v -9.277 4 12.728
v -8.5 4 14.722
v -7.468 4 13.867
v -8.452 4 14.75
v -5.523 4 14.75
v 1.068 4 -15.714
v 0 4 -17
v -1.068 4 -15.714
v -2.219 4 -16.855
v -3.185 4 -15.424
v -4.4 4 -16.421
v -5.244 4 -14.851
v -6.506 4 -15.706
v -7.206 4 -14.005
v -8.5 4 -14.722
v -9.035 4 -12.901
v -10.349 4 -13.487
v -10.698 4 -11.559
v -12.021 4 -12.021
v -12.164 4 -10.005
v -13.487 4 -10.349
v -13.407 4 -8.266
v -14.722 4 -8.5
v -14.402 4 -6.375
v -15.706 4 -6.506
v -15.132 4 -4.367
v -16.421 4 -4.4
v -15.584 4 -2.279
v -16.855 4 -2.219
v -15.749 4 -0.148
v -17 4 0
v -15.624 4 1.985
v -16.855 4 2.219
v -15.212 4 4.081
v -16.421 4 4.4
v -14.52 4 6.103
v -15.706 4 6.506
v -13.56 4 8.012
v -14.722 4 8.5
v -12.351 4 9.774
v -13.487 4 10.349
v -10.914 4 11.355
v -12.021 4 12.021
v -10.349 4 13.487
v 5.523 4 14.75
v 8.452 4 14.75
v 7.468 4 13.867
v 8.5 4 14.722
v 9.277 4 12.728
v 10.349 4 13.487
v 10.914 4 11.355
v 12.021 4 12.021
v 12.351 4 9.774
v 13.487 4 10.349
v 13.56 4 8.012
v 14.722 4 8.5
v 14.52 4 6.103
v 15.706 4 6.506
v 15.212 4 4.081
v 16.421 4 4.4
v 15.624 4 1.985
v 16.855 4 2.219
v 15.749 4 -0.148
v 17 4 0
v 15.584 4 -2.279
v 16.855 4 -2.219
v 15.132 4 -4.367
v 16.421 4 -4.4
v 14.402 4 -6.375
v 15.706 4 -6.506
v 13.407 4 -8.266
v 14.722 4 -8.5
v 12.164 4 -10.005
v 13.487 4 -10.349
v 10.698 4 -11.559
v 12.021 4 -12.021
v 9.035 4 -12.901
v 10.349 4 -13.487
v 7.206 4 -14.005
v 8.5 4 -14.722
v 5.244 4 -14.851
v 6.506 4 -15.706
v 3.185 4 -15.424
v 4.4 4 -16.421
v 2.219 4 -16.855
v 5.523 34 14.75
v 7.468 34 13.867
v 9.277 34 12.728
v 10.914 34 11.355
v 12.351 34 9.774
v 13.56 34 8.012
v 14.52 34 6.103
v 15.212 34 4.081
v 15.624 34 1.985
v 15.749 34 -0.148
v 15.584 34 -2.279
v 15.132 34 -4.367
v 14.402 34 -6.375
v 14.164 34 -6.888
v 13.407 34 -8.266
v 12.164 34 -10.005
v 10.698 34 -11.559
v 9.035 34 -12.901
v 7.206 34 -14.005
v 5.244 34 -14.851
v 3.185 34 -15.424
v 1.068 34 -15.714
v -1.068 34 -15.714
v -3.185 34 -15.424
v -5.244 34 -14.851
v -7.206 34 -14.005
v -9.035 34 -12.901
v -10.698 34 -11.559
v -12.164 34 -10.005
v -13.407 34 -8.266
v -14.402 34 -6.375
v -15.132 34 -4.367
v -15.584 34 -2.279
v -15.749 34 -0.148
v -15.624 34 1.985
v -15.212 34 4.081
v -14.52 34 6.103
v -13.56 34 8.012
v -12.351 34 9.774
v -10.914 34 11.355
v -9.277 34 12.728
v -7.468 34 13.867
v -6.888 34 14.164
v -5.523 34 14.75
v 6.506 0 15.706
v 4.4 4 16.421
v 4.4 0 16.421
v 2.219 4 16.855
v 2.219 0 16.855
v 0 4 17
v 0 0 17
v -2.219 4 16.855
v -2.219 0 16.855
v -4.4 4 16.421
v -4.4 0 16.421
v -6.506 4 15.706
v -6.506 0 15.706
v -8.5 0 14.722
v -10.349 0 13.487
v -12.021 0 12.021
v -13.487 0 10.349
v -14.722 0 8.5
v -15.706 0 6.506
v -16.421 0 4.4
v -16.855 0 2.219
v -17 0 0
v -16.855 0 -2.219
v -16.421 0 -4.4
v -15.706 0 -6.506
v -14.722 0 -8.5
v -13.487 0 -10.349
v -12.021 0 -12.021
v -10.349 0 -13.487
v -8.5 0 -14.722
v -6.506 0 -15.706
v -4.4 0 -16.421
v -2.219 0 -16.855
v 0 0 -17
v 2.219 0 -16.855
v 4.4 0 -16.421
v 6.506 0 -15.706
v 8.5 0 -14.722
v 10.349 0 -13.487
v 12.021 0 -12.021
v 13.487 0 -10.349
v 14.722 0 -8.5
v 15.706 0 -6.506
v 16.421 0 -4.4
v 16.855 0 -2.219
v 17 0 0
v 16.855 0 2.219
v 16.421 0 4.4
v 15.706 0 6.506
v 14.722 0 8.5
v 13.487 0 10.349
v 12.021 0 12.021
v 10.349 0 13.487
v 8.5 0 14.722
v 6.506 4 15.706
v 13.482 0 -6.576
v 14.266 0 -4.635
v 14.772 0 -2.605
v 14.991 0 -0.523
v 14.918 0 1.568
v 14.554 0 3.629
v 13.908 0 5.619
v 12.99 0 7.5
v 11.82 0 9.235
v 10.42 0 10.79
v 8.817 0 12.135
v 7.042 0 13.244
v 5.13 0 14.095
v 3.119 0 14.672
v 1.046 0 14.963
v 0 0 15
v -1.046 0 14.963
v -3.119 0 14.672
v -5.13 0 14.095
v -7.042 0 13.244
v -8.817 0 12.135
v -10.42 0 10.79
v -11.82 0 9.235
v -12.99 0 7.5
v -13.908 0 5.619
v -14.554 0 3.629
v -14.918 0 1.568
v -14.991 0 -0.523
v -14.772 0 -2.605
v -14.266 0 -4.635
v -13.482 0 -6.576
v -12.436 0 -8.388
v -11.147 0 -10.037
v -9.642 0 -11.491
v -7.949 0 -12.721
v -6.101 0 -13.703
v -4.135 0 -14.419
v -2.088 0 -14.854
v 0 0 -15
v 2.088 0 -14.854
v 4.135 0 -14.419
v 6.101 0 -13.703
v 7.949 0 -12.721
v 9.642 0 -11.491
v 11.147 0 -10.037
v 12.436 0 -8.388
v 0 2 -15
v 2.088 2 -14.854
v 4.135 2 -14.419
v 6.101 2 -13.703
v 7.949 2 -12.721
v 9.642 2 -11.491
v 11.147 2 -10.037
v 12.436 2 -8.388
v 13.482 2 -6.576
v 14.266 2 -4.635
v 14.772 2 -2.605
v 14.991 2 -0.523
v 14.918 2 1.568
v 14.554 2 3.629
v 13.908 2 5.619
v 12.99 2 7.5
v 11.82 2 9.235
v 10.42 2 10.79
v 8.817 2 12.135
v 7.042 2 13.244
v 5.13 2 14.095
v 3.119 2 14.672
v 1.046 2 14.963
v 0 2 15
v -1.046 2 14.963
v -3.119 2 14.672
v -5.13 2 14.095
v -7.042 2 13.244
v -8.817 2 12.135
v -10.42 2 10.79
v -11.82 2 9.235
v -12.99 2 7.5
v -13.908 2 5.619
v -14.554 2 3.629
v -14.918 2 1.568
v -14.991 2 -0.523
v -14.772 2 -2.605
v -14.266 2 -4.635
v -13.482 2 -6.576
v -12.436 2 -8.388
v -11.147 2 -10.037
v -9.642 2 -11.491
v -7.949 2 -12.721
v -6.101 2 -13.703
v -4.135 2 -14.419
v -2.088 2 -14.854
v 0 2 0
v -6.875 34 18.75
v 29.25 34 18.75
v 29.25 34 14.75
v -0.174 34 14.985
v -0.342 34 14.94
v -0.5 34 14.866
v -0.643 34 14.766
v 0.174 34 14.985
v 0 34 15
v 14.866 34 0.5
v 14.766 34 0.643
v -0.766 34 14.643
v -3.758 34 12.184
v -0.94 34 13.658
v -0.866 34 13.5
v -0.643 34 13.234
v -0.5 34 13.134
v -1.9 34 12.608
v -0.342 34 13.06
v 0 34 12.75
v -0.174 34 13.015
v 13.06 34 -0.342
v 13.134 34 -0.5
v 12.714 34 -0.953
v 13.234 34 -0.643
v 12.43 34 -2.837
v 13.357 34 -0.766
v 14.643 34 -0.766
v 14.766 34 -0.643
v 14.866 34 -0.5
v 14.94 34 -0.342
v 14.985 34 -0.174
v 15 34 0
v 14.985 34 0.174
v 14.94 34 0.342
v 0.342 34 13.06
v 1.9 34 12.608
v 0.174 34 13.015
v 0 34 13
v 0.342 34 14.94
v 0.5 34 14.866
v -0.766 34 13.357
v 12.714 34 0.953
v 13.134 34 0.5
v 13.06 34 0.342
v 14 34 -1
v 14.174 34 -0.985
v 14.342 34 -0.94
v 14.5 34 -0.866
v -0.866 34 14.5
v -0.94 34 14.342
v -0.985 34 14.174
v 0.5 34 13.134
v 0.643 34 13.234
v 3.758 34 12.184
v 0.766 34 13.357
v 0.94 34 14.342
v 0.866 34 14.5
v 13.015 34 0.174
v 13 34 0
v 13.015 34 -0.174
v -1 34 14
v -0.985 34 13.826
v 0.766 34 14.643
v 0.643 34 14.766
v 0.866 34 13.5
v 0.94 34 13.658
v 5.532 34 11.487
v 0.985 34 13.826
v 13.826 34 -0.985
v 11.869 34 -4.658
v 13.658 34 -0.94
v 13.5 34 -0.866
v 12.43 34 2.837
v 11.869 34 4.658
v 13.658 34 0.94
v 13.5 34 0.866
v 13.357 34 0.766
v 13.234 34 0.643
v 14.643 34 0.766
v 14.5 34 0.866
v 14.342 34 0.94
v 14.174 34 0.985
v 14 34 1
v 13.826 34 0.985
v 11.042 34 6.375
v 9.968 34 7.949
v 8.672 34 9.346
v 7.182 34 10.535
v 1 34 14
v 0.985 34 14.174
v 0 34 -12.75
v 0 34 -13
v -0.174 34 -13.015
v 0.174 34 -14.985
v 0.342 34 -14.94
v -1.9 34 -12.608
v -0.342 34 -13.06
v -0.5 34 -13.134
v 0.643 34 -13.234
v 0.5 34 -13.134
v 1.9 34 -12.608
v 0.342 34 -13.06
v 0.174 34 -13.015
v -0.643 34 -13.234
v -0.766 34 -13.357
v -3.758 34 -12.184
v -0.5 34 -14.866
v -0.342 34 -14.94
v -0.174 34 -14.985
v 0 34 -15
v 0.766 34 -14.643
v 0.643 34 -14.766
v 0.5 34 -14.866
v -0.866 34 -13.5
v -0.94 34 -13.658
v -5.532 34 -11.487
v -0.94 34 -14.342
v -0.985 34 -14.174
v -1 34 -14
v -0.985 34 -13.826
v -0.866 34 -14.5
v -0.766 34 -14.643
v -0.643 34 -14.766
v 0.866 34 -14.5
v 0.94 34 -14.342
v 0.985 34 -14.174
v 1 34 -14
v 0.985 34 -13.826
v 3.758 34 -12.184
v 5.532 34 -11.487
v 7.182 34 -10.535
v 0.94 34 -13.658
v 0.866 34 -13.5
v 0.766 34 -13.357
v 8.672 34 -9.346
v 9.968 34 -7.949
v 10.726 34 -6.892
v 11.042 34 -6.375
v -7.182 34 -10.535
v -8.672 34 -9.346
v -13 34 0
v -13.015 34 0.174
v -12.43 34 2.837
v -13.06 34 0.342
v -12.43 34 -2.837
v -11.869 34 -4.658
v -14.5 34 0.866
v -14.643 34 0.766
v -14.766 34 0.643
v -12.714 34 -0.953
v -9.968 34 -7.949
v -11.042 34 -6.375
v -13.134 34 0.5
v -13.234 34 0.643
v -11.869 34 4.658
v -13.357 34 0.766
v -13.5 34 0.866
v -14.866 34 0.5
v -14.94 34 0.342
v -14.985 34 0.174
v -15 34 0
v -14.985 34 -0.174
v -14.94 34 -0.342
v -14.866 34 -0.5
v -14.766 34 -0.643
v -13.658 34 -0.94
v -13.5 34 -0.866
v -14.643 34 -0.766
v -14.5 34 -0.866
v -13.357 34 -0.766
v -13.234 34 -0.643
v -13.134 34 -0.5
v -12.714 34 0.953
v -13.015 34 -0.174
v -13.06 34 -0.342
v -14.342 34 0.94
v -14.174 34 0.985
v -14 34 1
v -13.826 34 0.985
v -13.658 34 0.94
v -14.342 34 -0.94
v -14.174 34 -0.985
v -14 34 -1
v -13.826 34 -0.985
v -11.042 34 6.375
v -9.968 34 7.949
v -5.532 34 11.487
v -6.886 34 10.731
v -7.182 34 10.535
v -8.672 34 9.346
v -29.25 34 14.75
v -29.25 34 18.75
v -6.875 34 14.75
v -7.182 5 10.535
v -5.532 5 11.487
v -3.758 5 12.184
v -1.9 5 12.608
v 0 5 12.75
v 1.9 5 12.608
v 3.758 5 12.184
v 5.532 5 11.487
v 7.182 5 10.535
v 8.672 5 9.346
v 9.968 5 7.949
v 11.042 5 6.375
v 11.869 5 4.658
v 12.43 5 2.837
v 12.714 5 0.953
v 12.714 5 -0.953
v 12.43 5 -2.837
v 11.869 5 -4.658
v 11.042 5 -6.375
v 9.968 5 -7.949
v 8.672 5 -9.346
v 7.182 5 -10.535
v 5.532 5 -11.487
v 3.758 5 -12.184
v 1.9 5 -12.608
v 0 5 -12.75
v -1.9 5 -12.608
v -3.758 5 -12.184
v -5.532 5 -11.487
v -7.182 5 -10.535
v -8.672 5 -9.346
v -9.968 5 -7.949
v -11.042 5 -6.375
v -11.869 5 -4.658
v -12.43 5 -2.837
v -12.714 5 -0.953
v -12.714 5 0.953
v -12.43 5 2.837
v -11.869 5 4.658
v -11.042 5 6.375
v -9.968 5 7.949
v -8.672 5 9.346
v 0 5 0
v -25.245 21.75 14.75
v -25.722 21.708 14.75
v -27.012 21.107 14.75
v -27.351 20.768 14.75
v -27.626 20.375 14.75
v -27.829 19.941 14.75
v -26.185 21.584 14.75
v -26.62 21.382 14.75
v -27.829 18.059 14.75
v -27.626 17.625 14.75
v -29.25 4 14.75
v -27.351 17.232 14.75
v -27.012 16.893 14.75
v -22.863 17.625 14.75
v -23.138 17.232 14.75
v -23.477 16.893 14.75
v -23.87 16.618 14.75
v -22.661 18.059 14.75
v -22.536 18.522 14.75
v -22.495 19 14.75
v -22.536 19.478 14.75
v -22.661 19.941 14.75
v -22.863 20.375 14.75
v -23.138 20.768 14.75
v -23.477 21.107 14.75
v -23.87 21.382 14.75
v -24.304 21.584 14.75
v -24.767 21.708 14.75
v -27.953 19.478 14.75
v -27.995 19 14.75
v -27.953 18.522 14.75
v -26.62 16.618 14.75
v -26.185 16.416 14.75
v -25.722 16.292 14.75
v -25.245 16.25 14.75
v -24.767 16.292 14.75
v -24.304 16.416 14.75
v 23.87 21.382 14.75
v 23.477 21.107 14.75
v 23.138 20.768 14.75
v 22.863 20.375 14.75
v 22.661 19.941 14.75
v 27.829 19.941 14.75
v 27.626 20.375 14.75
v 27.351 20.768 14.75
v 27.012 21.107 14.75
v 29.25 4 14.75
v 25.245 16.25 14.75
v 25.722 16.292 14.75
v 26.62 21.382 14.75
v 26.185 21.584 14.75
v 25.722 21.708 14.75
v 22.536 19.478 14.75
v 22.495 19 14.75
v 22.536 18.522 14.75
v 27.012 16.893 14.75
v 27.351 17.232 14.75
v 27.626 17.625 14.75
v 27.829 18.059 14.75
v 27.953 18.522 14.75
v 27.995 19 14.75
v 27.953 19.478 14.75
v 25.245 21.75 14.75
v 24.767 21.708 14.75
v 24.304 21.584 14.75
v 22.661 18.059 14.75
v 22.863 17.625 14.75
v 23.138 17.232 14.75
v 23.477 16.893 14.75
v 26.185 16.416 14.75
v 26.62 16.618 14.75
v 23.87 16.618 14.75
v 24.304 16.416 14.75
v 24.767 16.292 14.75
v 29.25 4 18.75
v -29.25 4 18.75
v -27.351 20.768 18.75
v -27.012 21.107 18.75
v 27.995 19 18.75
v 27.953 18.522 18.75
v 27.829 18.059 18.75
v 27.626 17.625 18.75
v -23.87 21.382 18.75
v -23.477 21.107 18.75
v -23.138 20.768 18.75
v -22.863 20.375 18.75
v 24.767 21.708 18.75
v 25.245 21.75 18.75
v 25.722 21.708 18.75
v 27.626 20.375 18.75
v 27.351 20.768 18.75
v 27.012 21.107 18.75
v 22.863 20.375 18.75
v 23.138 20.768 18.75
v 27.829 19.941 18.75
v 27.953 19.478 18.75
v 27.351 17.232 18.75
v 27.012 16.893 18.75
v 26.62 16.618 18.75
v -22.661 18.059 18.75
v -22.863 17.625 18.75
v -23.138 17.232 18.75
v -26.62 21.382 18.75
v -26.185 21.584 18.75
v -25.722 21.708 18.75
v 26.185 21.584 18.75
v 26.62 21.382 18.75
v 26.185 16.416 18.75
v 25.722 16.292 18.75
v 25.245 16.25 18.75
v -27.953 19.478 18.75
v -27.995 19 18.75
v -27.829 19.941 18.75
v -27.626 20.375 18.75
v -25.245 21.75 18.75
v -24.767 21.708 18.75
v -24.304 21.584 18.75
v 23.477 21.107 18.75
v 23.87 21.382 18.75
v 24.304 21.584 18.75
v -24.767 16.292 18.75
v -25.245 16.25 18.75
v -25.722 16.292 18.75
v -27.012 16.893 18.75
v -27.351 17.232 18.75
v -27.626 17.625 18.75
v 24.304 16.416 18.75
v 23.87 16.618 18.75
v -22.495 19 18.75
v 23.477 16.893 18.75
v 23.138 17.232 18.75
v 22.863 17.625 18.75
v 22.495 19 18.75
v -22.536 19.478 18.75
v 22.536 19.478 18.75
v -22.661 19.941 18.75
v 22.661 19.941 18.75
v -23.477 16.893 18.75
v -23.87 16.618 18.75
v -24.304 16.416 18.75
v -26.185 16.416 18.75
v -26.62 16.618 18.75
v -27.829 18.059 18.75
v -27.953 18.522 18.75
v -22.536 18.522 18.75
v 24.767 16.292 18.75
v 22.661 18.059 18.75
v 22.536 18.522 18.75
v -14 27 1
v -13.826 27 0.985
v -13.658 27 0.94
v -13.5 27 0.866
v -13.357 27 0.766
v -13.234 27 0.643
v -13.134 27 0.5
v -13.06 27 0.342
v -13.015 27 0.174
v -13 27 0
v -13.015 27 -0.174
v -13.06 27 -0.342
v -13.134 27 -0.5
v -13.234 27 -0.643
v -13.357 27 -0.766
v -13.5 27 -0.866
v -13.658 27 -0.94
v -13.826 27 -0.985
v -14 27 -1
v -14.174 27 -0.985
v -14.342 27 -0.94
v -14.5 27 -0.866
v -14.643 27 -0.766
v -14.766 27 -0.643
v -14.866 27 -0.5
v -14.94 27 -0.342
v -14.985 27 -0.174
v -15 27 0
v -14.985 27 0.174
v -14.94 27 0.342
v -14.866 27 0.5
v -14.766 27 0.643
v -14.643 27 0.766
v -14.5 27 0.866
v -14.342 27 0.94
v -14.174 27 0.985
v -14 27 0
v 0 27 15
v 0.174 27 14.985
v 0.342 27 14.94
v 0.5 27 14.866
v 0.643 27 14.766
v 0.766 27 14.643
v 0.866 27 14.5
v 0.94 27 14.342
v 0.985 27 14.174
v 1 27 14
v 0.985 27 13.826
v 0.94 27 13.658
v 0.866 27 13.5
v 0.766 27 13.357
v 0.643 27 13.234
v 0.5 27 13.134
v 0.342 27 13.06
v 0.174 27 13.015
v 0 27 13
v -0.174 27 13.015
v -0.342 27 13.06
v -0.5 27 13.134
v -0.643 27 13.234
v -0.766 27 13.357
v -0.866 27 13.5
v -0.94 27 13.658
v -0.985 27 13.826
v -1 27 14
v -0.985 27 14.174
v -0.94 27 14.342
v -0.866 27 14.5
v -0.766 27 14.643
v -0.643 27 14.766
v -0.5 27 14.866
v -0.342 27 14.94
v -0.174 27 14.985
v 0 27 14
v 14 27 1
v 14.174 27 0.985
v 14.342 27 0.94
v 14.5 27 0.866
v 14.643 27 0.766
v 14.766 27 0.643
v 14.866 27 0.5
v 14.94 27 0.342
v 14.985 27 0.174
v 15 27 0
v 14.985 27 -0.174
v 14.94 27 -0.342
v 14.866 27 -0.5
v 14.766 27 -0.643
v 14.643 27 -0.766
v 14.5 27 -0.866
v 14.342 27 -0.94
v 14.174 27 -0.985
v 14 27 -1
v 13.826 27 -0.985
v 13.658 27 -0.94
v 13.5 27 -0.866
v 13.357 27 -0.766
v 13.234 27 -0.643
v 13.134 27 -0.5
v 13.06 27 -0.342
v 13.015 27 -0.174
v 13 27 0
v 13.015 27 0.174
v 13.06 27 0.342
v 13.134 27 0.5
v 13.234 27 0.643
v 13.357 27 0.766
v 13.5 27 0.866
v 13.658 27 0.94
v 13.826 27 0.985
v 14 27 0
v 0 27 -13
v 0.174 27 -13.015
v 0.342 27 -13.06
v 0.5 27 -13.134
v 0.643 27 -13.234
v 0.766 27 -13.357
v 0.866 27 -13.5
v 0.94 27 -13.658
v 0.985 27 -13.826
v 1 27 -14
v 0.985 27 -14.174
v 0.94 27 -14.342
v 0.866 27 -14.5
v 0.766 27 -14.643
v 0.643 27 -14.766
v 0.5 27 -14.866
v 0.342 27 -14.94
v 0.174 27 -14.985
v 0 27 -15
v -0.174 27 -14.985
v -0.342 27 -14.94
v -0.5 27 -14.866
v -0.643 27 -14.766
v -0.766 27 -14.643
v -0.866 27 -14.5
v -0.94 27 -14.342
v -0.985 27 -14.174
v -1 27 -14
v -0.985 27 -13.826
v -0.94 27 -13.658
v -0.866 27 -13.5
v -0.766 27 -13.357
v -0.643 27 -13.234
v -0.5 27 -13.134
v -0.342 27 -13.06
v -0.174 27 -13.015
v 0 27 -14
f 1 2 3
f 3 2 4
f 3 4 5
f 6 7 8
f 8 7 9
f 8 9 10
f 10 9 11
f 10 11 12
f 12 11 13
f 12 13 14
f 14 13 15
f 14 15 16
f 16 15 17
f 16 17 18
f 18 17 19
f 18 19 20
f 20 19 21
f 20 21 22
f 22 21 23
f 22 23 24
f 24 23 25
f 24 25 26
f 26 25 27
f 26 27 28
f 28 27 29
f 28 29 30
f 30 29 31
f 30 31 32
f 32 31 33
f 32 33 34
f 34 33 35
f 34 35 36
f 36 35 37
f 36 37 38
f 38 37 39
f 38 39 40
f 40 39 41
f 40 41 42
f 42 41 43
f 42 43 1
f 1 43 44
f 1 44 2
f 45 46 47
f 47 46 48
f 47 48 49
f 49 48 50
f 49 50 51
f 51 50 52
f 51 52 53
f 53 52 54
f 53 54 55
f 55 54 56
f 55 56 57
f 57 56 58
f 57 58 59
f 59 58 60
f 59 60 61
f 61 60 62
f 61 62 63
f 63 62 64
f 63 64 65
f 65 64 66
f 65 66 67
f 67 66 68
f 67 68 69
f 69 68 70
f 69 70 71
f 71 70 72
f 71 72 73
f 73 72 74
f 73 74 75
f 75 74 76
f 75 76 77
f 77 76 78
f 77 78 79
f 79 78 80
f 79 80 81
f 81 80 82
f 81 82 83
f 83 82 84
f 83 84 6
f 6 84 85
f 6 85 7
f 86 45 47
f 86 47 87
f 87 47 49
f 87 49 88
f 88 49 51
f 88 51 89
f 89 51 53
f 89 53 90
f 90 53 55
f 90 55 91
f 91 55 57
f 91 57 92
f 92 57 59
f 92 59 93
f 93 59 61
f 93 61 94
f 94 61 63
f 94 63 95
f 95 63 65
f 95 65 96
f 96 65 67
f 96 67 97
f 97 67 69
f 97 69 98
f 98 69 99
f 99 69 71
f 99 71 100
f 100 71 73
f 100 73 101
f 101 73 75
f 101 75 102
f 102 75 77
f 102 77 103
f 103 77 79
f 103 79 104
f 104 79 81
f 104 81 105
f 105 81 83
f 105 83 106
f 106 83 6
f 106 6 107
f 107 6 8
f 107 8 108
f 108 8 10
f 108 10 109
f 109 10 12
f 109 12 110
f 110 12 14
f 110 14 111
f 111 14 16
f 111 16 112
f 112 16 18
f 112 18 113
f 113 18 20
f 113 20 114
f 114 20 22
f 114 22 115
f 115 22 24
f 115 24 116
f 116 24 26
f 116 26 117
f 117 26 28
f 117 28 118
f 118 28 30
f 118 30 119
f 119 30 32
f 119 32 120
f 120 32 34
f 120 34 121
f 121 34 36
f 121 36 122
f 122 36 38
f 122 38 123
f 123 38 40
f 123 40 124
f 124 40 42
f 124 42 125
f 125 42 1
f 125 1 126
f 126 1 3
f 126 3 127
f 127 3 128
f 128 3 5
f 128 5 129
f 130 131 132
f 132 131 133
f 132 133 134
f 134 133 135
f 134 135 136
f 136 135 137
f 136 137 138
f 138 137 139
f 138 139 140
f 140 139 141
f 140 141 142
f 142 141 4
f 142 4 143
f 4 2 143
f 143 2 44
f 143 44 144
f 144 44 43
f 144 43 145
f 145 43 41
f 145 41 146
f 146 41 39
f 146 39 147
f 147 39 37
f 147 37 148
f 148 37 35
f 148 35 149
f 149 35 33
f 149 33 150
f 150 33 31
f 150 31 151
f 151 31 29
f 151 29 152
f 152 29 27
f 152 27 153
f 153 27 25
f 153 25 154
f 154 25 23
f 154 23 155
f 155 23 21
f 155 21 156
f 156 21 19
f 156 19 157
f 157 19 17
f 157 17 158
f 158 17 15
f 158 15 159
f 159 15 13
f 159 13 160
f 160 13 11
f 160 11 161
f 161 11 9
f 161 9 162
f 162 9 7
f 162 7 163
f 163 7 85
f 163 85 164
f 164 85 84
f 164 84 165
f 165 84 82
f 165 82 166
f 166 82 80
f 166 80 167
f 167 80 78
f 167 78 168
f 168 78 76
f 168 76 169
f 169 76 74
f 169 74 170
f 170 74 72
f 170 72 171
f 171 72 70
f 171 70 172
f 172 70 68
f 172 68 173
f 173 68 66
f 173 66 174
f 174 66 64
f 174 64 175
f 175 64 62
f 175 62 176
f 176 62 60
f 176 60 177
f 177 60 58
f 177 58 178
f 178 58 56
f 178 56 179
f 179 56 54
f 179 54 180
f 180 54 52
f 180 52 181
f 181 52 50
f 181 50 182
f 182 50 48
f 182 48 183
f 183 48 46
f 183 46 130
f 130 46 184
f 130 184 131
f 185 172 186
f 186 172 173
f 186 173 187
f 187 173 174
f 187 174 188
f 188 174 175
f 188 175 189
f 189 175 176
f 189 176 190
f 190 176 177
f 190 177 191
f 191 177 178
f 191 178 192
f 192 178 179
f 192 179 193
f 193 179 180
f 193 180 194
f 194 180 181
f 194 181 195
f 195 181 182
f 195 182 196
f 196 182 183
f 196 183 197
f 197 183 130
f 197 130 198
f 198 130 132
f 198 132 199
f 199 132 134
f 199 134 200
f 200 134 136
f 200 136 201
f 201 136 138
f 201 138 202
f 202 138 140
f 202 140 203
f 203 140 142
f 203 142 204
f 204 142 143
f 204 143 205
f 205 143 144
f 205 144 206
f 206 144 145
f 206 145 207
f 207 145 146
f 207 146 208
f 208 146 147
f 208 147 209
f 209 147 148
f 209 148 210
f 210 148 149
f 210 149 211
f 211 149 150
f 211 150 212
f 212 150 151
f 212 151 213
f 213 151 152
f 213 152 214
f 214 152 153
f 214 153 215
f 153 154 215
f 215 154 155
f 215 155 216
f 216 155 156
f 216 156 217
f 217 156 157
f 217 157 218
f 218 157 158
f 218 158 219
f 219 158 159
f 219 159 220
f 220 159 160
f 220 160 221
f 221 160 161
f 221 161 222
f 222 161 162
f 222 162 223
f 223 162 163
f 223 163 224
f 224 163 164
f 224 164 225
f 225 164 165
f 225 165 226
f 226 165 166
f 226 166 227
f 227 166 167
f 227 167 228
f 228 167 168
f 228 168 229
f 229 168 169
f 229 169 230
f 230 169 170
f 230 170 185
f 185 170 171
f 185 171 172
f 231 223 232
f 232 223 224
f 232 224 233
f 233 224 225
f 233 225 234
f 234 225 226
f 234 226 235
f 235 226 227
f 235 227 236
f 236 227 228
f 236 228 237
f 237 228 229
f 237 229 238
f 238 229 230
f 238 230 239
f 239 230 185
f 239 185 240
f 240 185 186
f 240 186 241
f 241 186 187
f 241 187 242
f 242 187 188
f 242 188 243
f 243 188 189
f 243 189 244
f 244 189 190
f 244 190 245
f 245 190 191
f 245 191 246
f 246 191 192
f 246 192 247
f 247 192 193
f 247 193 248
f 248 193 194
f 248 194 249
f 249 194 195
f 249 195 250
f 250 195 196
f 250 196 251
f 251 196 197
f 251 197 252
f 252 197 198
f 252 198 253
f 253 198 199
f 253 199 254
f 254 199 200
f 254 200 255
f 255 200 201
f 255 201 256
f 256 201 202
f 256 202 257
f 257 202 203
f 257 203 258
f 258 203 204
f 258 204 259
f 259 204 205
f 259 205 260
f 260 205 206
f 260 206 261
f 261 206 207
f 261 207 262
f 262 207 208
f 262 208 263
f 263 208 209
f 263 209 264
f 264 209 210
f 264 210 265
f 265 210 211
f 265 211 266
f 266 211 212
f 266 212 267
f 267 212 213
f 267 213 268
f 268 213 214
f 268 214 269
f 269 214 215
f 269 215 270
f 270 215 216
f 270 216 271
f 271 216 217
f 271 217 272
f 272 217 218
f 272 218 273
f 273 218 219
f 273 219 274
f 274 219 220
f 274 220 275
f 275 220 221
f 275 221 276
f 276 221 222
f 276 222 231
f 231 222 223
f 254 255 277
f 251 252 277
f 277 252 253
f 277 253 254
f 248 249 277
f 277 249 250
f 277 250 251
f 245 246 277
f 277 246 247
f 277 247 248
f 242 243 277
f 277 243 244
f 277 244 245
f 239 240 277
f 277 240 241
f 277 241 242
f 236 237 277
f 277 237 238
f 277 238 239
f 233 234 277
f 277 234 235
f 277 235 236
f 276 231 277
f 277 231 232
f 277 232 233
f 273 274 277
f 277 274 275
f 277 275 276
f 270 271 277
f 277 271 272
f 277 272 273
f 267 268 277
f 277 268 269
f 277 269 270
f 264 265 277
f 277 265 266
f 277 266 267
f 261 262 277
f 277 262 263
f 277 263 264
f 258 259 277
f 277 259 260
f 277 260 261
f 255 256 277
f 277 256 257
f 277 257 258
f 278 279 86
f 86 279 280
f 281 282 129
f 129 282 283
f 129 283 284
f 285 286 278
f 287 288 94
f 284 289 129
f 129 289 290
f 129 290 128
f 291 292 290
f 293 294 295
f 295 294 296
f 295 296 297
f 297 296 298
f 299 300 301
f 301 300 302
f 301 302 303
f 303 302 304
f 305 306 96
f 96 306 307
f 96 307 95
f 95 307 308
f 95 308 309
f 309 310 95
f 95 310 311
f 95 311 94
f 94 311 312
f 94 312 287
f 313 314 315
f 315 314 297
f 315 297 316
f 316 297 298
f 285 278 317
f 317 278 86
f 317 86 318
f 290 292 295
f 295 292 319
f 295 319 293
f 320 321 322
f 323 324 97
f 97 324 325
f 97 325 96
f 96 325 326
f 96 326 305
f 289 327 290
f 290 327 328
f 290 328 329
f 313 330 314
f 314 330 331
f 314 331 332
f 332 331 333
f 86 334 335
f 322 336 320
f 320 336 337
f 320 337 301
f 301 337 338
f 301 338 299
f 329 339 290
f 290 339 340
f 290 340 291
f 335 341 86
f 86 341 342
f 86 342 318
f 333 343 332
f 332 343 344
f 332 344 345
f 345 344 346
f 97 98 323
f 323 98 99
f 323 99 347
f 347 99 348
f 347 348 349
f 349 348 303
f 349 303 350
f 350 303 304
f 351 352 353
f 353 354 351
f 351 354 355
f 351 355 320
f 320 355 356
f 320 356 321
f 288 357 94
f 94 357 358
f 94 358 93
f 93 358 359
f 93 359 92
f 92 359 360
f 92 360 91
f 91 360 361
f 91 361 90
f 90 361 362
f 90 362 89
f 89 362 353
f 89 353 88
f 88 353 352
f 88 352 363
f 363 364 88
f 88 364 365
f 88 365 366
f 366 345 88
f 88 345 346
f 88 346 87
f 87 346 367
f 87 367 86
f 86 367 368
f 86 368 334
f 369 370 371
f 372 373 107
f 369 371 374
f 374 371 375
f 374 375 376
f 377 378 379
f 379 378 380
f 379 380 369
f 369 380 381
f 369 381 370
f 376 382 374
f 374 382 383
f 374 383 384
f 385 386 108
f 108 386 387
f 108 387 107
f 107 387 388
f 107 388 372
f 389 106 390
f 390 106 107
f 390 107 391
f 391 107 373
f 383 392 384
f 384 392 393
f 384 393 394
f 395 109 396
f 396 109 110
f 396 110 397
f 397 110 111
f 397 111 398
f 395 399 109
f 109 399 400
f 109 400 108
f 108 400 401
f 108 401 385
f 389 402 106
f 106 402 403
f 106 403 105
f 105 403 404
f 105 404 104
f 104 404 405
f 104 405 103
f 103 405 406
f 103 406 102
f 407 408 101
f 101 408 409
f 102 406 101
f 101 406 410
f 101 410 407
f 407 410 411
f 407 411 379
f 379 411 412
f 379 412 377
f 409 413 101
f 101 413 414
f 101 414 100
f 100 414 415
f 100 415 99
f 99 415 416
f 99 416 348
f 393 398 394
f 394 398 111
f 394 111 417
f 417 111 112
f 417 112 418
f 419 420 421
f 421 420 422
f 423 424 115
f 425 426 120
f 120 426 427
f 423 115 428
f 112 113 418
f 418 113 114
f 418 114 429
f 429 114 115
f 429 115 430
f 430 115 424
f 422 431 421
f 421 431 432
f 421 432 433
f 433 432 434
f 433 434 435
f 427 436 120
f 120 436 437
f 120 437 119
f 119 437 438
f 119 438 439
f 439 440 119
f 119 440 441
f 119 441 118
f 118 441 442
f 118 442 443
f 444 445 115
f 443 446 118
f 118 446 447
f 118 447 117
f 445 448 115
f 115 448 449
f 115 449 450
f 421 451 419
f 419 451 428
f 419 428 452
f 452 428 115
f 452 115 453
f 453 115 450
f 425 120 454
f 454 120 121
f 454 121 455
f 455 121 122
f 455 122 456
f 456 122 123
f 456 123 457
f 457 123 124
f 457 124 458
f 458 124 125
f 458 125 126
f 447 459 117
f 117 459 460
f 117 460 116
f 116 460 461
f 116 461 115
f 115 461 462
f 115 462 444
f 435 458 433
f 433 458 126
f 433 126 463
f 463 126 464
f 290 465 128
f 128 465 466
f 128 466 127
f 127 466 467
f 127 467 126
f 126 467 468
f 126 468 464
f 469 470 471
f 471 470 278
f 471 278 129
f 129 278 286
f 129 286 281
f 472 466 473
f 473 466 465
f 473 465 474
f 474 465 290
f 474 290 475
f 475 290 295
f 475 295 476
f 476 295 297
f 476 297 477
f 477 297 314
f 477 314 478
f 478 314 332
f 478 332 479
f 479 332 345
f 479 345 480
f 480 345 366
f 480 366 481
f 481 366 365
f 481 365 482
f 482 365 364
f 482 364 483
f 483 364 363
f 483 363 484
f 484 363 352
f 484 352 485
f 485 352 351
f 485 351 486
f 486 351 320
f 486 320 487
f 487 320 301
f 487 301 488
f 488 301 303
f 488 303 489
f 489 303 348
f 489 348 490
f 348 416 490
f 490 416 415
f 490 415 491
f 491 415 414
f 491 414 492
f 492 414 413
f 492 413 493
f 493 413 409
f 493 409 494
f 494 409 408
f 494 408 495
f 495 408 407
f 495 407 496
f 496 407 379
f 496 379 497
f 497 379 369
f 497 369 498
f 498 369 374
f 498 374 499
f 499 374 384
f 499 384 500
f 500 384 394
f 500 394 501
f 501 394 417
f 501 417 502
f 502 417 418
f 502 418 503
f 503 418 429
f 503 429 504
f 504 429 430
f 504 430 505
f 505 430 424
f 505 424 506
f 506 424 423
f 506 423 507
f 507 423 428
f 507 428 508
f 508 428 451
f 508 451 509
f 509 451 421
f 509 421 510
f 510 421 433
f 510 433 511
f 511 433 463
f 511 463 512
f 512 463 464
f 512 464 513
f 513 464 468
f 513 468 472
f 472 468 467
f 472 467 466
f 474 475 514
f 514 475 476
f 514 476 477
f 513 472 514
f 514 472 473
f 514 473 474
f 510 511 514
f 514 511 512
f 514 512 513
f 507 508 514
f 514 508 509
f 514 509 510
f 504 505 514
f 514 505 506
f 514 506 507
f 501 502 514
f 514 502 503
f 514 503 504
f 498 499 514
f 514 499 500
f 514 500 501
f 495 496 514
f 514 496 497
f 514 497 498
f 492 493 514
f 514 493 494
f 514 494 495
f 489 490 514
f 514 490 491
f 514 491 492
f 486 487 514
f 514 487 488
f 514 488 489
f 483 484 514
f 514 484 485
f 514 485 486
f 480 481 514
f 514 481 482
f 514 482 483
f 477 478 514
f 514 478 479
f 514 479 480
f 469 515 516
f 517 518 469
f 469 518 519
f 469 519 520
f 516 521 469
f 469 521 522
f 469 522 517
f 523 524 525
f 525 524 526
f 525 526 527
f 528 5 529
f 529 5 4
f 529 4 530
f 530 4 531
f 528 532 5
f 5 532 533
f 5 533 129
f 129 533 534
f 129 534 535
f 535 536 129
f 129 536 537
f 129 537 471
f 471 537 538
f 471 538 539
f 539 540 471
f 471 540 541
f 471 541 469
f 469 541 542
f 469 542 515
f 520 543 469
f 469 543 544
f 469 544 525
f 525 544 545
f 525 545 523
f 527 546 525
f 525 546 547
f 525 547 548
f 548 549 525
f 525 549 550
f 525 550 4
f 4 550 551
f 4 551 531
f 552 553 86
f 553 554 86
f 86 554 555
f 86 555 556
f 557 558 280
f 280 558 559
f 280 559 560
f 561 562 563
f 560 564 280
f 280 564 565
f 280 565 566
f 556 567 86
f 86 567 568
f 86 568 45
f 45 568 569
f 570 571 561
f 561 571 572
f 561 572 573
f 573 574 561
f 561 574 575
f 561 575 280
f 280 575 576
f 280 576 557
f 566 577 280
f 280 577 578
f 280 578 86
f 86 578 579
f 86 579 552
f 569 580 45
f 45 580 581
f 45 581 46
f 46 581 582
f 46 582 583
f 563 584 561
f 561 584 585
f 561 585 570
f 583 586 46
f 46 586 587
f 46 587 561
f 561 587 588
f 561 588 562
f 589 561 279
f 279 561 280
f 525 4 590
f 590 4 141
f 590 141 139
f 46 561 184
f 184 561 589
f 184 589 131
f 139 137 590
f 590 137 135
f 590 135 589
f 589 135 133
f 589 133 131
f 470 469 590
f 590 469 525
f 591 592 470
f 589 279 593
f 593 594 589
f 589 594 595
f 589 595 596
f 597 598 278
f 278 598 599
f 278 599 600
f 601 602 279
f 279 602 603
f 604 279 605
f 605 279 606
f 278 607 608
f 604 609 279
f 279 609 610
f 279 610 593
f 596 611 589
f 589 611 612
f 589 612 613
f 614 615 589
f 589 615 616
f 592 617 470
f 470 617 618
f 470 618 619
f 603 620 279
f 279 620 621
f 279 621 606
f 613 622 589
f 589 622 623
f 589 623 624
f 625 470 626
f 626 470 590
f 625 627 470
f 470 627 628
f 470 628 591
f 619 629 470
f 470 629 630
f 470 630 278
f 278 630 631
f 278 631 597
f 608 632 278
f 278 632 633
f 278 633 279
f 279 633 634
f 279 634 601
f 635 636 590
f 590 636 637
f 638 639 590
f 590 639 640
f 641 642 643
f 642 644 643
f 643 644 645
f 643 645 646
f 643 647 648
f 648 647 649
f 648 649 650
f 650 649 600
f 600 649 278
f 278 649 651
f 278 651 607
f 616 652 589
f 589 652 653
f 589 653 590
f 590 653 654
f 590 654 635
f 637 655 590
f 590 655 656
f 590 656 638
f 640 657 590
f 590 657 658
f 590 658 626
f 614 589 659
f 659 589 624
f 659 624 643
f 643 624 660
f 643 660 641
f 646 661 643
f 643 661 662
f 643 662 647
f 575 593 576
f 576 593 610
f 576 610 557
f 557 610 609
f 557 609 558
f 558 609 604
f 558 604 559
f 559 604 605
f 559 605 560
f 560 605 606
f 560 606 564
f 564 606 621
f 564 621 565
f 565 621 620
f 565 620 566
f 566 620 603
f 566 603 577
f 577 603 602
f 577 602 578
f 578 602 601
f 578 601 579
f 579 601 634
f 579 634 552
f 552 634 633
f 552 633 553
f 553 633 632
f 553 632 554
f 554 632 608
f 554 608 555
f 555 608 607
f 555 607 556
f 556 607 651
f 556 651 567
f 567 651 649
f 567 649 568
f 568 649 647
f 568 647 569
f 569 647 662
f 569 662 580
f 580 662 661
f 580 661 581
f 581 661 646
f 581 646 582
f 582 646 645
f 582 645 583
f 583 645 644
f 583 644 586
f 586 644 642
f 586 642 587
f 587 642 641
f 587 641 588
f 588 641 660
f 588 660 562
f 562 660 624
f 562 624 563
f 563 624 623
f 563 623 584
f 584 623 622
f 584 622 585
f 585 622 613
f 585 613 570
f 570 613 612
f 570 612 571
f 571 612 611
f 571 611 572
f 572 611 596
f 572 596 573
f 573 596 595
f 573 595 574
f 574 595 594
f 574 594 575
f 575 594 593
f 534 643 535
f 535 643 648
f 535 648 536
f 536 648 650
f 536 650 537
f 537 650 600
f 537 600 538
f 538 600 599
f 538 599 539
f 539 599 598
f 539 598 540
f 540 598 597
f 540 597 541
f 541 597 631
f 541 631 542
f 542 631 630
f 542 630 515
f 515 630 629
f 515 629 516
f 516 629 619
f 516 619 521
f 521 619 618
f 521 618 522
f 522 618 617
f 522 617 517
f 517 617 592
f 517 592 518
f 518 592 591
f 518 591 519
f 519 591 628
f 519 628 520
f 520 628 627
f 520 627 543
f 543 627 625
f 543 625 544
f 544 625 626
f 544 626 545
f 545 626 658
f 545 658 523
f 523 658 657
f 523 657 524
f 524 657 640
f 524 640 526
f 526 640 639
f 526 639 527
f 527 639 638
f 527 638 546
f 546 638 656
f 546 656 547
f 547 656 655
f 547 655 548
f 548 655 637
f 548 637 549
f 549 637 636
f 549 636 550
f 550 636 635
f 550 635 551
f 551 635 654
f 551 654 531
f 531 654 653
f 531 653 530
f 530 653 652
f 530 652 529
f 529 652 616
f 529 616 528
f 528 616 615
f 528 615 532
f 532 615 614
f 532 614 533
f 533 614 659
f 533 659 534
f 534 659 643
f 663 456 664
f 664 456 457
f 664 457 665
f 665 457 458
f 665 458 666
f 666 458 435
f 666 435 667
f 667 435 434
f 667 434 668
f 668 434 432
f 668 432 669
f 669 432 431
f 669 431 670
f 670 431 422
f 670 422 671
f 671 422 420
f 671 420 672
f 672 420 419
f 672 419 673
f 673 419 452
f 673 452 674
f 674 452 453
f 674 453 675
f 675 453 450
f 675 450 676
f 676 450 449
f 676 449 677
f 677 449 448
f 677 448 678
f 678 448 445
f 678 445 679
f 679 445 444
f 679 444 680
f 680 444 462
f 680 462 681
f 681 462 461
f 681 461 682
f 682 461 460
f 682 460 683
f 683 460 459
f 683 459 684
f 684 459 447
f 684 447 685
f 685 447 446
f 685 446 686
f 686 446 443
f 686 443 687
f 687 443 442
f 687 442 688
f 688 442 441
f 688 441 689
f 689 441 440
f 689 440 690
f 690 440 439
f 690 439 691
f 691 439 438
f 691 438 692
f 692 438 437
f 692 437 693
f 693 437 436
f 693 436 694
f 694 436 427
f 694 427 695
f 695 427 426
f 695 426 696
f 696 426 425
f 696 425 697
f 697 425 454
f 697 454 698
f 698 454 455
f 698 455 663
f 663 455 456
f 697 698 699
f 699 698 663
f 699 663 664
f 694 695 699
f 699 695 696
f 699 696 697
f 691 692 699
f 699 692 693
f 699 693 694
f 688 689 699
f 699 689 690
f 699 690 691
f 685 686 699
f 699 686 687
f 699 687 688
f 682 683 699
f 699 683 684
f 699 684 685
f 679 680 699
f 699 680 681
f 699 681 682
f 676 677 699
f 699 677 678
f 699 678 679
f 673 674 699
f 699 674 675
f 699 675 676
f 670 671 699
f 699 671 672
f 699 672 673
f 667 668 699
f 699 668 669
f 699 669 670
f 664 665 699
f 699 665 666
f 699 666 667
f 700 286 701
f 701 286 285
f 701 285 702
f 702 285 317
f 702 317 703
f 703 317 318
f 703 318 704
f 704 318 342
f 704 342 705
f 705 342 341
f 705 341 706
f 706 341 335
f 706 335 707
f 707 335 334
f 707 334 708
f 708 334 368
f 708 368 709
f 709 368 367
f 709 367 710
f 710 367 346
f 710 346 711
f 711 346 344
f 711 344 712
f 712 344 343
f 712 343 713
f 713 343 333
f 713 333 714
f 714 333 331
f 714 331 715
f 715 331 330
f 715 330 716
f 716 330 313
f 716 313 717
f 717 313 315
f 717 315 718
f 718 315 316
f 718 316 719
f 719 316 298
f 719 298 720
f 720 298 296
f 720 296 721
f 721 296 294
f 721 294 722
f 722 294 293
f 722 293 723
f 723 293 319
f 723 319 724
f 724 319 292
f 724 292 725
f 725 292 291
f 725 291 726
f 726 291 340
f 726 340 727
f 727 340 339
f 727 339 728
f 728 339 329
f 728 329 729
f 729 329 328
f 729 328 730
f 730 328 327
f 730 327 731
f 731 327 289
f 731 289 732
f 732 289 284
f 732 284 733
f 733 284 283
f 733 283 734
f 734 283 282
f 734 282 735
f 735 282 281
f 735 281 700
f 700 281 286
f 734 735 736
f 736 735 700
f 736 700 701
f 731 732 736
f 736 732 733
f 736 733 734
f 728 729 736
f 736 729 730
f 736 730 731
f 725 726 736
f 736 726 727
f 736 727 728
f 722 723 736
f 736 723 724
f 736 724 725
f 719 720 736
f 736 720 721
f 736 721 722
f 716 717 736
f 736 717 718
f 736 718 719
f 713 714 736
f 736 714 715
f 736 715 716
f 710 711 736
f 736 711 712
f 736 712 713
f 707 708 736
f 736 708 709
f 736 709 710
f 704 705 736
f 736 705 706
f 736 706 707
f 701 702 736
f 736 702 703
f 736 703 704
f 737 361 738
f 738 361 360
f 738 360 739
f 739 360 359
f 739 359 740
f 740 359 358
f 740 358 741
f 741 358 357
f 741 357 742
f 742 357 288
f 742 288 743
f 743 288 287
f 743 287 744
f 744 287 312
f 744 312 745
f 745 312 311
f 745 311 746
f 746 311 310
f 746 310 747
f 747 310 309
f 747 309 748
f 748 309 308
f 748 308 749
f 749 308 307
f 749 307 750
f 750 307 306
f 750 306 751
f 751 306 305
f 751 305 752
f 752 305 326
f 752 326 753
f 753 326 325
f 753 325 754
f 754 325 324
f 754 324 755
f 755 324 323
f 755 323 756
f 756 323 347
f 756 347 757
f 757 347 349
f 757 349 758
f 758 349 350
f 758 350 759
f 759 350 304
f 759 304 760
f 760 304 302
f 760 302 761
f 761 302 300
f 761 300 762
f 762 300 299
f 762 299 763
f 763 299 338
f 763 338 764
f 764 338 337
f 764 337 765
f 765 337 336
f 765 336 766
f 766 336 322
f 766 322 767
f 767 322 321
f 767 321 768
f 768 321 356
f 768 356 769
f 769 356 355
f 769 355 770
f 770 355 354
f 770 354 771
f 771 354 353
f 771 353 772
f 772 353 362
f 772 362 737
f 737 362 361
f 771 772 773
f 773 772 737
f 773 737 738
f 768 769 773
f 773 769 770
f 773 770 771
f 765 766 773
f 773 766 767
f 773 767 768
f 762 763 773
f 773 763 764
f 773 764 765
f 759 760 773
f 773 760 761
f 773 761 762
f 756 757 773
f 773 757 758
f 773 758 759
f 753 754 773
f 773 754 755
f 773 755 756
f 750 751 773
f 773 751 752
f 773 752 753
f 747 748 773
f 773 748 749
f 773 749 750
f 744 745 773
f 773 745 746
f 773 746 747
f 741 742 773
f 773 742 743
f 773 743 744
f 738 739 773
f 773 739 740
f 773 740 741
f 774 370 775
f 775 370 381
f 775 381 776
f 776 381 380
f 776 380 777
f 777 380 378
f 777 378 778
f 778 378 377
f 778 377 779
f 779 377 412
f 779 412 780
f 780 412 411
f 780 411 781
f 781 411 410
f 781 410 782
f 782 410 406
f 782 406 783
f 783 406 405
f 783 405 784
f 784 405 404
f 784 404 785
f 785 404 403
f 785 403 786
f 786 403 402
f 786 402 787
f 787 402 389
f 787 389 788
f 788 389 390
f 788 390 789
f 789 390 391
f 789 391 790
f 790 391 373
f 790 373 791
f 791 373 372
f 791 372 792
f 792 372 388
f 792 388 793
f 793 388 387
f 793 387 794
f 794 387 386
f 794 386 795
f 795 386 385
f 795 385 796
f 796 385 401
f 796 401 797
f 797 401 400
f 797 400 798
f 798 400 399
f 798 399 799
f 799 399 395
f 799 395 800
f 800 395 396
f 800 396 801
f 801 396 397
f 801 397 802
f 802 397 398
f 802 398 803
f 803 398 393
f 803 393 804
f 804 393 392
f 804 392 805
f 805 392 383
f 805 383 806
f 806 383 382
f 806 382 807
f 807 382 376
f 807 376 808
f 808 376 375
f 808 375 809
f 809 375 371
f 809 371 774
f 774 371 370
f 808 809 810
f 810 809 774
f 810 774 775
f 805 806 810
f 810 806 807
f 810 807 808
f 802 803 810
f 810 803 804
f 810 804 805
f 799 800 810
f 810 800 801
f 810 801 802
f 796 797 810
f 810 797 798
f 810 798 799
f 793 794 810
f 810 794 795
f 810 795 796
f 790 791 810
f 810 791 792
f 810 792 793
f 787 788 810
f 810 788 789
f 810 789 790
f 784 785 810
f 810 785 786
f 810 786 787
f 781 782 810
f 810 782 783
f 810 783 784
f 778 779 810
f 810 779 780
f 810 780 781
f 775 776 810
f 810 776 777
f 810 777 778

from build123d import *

# Parameters (mm, degrees)
SKETCH1_R                 = 17
BOSS_EXTRUDE2_DEPTH       = 4
SHELL1_T                  = -2
SKETCH14_R                = 15.75
BOSS_EXTRUDE7_DEPTH       = 30
SHELL4_T                  = -3
BOSS_EXTRUDE12_DEPTH      = 3
BOSS_EXTRUDE12_DEPTH_BACK = 1
SKETCH16_W                = 58.499045292
SKETCH16_H                = 30
SKETCH17_R                = 2.75
CUT_EXTRUDE4_DEPTH        = 5
SKETCH18_R                = 1
CUT_EXTRUDE5_DEPTH        = 7


with BuildPart() as part:
    # Sketch1 → Boss-Extrude2 (new body)
    with BuildSketch(Plane(origin=(0, 0, 0), x_dir=(1, 0, 0), z_dir=(0, 1, 0))):
        with Locations(Location((0, 0, 0), (0, 0, 270))):
            Circle(SKETCH1_R)
    extrude(amount=BOSS_EXTRUDE2_DEPTH)

    # Shell1
    shell1_openings = [part.faces().sort_by_distance(p)[0] for p in [
        (0, 0, 0),
    ]]
    offset(amount=SHELL1_T, openings=shell1_openings, kind=Kind.INTERSECTION)

    # Sketch14 → Boss-Extrude7 (add)
    with BuildSketch(Plane(origin=(0, 4, 0), x_dir=(1, 0, 0), z_dir=(0, 1, 0))):
        with Locations(Location((0, 0, 0), (0, 0, 270))):
            Circle(SKETCH14_R)
    extrude(amount=BOSS_EXTRUDE7_DEPTH)

    # Shell4
    shell4_openings = [part.faces().sort_by_distance(p)[0] for p in [
        (0, 34, 0),
    ]]
    offset(amount=SHELL4_T, openings=shell4_openings, kind=Kind.INTERSECTION)

    # Sketch16 → Boss-Extrude12 (add, two sides: drawn at the far end of the back side and taken through both)
    with BuildSketch(Plane.XY.offset(15.75).offset(-BOSS_EXTRUDE12_DEPTH_BACK)):
        with Locations((0, 19)):
            Rectangle(SKETCH16_W, SKETCH16_H)
    extrude(amount=BOSS_EXTRUDE12_DEPTH + BOSS_EXTRUDE12_DEPTH_BACK)

    # Sketch17 → Cut-Extrude4 (cut)
    with BuildSketch(Plane.XY.offset(18.75)):
        with Locations((-25.244673943, 19)):
            Circle(SKETCH17_R)
        with Locations((25.244673943, 19)):
            Circle(SKETCH17_R)
    extrude(amount=-CUT_EXTRUDE4_DEPTH, mode=Mode.SUBTRACT)

    # Sketch18 → Cut-Extrude5 (cut)
    with BuildSketch(Plane(origin=(0, 34, 0), x_dir=(1, 0, 0), z_dir=(0, 1, 0))):
        with Locations(Location((0, 14, 0), (0, 0, 270))):
            Circle(SKETCH18_R)
        with Locations(Location((14, 0, 0), (0, 0, 270))):
            Circle(SKETCH18_R)
        with Locations(Location((0, -14, 0), (0, 0, 270))):
            Circle(SKETCH18_R)
        with Locations(Location((-14, 0, 0), (0, 0, 270))):
            Circle(SKETCH18_R)
    extrude(amount=-CUT_EXTRUDE5_DEPTH, mode=Mode.SUBTRACT)


solid = part.part
